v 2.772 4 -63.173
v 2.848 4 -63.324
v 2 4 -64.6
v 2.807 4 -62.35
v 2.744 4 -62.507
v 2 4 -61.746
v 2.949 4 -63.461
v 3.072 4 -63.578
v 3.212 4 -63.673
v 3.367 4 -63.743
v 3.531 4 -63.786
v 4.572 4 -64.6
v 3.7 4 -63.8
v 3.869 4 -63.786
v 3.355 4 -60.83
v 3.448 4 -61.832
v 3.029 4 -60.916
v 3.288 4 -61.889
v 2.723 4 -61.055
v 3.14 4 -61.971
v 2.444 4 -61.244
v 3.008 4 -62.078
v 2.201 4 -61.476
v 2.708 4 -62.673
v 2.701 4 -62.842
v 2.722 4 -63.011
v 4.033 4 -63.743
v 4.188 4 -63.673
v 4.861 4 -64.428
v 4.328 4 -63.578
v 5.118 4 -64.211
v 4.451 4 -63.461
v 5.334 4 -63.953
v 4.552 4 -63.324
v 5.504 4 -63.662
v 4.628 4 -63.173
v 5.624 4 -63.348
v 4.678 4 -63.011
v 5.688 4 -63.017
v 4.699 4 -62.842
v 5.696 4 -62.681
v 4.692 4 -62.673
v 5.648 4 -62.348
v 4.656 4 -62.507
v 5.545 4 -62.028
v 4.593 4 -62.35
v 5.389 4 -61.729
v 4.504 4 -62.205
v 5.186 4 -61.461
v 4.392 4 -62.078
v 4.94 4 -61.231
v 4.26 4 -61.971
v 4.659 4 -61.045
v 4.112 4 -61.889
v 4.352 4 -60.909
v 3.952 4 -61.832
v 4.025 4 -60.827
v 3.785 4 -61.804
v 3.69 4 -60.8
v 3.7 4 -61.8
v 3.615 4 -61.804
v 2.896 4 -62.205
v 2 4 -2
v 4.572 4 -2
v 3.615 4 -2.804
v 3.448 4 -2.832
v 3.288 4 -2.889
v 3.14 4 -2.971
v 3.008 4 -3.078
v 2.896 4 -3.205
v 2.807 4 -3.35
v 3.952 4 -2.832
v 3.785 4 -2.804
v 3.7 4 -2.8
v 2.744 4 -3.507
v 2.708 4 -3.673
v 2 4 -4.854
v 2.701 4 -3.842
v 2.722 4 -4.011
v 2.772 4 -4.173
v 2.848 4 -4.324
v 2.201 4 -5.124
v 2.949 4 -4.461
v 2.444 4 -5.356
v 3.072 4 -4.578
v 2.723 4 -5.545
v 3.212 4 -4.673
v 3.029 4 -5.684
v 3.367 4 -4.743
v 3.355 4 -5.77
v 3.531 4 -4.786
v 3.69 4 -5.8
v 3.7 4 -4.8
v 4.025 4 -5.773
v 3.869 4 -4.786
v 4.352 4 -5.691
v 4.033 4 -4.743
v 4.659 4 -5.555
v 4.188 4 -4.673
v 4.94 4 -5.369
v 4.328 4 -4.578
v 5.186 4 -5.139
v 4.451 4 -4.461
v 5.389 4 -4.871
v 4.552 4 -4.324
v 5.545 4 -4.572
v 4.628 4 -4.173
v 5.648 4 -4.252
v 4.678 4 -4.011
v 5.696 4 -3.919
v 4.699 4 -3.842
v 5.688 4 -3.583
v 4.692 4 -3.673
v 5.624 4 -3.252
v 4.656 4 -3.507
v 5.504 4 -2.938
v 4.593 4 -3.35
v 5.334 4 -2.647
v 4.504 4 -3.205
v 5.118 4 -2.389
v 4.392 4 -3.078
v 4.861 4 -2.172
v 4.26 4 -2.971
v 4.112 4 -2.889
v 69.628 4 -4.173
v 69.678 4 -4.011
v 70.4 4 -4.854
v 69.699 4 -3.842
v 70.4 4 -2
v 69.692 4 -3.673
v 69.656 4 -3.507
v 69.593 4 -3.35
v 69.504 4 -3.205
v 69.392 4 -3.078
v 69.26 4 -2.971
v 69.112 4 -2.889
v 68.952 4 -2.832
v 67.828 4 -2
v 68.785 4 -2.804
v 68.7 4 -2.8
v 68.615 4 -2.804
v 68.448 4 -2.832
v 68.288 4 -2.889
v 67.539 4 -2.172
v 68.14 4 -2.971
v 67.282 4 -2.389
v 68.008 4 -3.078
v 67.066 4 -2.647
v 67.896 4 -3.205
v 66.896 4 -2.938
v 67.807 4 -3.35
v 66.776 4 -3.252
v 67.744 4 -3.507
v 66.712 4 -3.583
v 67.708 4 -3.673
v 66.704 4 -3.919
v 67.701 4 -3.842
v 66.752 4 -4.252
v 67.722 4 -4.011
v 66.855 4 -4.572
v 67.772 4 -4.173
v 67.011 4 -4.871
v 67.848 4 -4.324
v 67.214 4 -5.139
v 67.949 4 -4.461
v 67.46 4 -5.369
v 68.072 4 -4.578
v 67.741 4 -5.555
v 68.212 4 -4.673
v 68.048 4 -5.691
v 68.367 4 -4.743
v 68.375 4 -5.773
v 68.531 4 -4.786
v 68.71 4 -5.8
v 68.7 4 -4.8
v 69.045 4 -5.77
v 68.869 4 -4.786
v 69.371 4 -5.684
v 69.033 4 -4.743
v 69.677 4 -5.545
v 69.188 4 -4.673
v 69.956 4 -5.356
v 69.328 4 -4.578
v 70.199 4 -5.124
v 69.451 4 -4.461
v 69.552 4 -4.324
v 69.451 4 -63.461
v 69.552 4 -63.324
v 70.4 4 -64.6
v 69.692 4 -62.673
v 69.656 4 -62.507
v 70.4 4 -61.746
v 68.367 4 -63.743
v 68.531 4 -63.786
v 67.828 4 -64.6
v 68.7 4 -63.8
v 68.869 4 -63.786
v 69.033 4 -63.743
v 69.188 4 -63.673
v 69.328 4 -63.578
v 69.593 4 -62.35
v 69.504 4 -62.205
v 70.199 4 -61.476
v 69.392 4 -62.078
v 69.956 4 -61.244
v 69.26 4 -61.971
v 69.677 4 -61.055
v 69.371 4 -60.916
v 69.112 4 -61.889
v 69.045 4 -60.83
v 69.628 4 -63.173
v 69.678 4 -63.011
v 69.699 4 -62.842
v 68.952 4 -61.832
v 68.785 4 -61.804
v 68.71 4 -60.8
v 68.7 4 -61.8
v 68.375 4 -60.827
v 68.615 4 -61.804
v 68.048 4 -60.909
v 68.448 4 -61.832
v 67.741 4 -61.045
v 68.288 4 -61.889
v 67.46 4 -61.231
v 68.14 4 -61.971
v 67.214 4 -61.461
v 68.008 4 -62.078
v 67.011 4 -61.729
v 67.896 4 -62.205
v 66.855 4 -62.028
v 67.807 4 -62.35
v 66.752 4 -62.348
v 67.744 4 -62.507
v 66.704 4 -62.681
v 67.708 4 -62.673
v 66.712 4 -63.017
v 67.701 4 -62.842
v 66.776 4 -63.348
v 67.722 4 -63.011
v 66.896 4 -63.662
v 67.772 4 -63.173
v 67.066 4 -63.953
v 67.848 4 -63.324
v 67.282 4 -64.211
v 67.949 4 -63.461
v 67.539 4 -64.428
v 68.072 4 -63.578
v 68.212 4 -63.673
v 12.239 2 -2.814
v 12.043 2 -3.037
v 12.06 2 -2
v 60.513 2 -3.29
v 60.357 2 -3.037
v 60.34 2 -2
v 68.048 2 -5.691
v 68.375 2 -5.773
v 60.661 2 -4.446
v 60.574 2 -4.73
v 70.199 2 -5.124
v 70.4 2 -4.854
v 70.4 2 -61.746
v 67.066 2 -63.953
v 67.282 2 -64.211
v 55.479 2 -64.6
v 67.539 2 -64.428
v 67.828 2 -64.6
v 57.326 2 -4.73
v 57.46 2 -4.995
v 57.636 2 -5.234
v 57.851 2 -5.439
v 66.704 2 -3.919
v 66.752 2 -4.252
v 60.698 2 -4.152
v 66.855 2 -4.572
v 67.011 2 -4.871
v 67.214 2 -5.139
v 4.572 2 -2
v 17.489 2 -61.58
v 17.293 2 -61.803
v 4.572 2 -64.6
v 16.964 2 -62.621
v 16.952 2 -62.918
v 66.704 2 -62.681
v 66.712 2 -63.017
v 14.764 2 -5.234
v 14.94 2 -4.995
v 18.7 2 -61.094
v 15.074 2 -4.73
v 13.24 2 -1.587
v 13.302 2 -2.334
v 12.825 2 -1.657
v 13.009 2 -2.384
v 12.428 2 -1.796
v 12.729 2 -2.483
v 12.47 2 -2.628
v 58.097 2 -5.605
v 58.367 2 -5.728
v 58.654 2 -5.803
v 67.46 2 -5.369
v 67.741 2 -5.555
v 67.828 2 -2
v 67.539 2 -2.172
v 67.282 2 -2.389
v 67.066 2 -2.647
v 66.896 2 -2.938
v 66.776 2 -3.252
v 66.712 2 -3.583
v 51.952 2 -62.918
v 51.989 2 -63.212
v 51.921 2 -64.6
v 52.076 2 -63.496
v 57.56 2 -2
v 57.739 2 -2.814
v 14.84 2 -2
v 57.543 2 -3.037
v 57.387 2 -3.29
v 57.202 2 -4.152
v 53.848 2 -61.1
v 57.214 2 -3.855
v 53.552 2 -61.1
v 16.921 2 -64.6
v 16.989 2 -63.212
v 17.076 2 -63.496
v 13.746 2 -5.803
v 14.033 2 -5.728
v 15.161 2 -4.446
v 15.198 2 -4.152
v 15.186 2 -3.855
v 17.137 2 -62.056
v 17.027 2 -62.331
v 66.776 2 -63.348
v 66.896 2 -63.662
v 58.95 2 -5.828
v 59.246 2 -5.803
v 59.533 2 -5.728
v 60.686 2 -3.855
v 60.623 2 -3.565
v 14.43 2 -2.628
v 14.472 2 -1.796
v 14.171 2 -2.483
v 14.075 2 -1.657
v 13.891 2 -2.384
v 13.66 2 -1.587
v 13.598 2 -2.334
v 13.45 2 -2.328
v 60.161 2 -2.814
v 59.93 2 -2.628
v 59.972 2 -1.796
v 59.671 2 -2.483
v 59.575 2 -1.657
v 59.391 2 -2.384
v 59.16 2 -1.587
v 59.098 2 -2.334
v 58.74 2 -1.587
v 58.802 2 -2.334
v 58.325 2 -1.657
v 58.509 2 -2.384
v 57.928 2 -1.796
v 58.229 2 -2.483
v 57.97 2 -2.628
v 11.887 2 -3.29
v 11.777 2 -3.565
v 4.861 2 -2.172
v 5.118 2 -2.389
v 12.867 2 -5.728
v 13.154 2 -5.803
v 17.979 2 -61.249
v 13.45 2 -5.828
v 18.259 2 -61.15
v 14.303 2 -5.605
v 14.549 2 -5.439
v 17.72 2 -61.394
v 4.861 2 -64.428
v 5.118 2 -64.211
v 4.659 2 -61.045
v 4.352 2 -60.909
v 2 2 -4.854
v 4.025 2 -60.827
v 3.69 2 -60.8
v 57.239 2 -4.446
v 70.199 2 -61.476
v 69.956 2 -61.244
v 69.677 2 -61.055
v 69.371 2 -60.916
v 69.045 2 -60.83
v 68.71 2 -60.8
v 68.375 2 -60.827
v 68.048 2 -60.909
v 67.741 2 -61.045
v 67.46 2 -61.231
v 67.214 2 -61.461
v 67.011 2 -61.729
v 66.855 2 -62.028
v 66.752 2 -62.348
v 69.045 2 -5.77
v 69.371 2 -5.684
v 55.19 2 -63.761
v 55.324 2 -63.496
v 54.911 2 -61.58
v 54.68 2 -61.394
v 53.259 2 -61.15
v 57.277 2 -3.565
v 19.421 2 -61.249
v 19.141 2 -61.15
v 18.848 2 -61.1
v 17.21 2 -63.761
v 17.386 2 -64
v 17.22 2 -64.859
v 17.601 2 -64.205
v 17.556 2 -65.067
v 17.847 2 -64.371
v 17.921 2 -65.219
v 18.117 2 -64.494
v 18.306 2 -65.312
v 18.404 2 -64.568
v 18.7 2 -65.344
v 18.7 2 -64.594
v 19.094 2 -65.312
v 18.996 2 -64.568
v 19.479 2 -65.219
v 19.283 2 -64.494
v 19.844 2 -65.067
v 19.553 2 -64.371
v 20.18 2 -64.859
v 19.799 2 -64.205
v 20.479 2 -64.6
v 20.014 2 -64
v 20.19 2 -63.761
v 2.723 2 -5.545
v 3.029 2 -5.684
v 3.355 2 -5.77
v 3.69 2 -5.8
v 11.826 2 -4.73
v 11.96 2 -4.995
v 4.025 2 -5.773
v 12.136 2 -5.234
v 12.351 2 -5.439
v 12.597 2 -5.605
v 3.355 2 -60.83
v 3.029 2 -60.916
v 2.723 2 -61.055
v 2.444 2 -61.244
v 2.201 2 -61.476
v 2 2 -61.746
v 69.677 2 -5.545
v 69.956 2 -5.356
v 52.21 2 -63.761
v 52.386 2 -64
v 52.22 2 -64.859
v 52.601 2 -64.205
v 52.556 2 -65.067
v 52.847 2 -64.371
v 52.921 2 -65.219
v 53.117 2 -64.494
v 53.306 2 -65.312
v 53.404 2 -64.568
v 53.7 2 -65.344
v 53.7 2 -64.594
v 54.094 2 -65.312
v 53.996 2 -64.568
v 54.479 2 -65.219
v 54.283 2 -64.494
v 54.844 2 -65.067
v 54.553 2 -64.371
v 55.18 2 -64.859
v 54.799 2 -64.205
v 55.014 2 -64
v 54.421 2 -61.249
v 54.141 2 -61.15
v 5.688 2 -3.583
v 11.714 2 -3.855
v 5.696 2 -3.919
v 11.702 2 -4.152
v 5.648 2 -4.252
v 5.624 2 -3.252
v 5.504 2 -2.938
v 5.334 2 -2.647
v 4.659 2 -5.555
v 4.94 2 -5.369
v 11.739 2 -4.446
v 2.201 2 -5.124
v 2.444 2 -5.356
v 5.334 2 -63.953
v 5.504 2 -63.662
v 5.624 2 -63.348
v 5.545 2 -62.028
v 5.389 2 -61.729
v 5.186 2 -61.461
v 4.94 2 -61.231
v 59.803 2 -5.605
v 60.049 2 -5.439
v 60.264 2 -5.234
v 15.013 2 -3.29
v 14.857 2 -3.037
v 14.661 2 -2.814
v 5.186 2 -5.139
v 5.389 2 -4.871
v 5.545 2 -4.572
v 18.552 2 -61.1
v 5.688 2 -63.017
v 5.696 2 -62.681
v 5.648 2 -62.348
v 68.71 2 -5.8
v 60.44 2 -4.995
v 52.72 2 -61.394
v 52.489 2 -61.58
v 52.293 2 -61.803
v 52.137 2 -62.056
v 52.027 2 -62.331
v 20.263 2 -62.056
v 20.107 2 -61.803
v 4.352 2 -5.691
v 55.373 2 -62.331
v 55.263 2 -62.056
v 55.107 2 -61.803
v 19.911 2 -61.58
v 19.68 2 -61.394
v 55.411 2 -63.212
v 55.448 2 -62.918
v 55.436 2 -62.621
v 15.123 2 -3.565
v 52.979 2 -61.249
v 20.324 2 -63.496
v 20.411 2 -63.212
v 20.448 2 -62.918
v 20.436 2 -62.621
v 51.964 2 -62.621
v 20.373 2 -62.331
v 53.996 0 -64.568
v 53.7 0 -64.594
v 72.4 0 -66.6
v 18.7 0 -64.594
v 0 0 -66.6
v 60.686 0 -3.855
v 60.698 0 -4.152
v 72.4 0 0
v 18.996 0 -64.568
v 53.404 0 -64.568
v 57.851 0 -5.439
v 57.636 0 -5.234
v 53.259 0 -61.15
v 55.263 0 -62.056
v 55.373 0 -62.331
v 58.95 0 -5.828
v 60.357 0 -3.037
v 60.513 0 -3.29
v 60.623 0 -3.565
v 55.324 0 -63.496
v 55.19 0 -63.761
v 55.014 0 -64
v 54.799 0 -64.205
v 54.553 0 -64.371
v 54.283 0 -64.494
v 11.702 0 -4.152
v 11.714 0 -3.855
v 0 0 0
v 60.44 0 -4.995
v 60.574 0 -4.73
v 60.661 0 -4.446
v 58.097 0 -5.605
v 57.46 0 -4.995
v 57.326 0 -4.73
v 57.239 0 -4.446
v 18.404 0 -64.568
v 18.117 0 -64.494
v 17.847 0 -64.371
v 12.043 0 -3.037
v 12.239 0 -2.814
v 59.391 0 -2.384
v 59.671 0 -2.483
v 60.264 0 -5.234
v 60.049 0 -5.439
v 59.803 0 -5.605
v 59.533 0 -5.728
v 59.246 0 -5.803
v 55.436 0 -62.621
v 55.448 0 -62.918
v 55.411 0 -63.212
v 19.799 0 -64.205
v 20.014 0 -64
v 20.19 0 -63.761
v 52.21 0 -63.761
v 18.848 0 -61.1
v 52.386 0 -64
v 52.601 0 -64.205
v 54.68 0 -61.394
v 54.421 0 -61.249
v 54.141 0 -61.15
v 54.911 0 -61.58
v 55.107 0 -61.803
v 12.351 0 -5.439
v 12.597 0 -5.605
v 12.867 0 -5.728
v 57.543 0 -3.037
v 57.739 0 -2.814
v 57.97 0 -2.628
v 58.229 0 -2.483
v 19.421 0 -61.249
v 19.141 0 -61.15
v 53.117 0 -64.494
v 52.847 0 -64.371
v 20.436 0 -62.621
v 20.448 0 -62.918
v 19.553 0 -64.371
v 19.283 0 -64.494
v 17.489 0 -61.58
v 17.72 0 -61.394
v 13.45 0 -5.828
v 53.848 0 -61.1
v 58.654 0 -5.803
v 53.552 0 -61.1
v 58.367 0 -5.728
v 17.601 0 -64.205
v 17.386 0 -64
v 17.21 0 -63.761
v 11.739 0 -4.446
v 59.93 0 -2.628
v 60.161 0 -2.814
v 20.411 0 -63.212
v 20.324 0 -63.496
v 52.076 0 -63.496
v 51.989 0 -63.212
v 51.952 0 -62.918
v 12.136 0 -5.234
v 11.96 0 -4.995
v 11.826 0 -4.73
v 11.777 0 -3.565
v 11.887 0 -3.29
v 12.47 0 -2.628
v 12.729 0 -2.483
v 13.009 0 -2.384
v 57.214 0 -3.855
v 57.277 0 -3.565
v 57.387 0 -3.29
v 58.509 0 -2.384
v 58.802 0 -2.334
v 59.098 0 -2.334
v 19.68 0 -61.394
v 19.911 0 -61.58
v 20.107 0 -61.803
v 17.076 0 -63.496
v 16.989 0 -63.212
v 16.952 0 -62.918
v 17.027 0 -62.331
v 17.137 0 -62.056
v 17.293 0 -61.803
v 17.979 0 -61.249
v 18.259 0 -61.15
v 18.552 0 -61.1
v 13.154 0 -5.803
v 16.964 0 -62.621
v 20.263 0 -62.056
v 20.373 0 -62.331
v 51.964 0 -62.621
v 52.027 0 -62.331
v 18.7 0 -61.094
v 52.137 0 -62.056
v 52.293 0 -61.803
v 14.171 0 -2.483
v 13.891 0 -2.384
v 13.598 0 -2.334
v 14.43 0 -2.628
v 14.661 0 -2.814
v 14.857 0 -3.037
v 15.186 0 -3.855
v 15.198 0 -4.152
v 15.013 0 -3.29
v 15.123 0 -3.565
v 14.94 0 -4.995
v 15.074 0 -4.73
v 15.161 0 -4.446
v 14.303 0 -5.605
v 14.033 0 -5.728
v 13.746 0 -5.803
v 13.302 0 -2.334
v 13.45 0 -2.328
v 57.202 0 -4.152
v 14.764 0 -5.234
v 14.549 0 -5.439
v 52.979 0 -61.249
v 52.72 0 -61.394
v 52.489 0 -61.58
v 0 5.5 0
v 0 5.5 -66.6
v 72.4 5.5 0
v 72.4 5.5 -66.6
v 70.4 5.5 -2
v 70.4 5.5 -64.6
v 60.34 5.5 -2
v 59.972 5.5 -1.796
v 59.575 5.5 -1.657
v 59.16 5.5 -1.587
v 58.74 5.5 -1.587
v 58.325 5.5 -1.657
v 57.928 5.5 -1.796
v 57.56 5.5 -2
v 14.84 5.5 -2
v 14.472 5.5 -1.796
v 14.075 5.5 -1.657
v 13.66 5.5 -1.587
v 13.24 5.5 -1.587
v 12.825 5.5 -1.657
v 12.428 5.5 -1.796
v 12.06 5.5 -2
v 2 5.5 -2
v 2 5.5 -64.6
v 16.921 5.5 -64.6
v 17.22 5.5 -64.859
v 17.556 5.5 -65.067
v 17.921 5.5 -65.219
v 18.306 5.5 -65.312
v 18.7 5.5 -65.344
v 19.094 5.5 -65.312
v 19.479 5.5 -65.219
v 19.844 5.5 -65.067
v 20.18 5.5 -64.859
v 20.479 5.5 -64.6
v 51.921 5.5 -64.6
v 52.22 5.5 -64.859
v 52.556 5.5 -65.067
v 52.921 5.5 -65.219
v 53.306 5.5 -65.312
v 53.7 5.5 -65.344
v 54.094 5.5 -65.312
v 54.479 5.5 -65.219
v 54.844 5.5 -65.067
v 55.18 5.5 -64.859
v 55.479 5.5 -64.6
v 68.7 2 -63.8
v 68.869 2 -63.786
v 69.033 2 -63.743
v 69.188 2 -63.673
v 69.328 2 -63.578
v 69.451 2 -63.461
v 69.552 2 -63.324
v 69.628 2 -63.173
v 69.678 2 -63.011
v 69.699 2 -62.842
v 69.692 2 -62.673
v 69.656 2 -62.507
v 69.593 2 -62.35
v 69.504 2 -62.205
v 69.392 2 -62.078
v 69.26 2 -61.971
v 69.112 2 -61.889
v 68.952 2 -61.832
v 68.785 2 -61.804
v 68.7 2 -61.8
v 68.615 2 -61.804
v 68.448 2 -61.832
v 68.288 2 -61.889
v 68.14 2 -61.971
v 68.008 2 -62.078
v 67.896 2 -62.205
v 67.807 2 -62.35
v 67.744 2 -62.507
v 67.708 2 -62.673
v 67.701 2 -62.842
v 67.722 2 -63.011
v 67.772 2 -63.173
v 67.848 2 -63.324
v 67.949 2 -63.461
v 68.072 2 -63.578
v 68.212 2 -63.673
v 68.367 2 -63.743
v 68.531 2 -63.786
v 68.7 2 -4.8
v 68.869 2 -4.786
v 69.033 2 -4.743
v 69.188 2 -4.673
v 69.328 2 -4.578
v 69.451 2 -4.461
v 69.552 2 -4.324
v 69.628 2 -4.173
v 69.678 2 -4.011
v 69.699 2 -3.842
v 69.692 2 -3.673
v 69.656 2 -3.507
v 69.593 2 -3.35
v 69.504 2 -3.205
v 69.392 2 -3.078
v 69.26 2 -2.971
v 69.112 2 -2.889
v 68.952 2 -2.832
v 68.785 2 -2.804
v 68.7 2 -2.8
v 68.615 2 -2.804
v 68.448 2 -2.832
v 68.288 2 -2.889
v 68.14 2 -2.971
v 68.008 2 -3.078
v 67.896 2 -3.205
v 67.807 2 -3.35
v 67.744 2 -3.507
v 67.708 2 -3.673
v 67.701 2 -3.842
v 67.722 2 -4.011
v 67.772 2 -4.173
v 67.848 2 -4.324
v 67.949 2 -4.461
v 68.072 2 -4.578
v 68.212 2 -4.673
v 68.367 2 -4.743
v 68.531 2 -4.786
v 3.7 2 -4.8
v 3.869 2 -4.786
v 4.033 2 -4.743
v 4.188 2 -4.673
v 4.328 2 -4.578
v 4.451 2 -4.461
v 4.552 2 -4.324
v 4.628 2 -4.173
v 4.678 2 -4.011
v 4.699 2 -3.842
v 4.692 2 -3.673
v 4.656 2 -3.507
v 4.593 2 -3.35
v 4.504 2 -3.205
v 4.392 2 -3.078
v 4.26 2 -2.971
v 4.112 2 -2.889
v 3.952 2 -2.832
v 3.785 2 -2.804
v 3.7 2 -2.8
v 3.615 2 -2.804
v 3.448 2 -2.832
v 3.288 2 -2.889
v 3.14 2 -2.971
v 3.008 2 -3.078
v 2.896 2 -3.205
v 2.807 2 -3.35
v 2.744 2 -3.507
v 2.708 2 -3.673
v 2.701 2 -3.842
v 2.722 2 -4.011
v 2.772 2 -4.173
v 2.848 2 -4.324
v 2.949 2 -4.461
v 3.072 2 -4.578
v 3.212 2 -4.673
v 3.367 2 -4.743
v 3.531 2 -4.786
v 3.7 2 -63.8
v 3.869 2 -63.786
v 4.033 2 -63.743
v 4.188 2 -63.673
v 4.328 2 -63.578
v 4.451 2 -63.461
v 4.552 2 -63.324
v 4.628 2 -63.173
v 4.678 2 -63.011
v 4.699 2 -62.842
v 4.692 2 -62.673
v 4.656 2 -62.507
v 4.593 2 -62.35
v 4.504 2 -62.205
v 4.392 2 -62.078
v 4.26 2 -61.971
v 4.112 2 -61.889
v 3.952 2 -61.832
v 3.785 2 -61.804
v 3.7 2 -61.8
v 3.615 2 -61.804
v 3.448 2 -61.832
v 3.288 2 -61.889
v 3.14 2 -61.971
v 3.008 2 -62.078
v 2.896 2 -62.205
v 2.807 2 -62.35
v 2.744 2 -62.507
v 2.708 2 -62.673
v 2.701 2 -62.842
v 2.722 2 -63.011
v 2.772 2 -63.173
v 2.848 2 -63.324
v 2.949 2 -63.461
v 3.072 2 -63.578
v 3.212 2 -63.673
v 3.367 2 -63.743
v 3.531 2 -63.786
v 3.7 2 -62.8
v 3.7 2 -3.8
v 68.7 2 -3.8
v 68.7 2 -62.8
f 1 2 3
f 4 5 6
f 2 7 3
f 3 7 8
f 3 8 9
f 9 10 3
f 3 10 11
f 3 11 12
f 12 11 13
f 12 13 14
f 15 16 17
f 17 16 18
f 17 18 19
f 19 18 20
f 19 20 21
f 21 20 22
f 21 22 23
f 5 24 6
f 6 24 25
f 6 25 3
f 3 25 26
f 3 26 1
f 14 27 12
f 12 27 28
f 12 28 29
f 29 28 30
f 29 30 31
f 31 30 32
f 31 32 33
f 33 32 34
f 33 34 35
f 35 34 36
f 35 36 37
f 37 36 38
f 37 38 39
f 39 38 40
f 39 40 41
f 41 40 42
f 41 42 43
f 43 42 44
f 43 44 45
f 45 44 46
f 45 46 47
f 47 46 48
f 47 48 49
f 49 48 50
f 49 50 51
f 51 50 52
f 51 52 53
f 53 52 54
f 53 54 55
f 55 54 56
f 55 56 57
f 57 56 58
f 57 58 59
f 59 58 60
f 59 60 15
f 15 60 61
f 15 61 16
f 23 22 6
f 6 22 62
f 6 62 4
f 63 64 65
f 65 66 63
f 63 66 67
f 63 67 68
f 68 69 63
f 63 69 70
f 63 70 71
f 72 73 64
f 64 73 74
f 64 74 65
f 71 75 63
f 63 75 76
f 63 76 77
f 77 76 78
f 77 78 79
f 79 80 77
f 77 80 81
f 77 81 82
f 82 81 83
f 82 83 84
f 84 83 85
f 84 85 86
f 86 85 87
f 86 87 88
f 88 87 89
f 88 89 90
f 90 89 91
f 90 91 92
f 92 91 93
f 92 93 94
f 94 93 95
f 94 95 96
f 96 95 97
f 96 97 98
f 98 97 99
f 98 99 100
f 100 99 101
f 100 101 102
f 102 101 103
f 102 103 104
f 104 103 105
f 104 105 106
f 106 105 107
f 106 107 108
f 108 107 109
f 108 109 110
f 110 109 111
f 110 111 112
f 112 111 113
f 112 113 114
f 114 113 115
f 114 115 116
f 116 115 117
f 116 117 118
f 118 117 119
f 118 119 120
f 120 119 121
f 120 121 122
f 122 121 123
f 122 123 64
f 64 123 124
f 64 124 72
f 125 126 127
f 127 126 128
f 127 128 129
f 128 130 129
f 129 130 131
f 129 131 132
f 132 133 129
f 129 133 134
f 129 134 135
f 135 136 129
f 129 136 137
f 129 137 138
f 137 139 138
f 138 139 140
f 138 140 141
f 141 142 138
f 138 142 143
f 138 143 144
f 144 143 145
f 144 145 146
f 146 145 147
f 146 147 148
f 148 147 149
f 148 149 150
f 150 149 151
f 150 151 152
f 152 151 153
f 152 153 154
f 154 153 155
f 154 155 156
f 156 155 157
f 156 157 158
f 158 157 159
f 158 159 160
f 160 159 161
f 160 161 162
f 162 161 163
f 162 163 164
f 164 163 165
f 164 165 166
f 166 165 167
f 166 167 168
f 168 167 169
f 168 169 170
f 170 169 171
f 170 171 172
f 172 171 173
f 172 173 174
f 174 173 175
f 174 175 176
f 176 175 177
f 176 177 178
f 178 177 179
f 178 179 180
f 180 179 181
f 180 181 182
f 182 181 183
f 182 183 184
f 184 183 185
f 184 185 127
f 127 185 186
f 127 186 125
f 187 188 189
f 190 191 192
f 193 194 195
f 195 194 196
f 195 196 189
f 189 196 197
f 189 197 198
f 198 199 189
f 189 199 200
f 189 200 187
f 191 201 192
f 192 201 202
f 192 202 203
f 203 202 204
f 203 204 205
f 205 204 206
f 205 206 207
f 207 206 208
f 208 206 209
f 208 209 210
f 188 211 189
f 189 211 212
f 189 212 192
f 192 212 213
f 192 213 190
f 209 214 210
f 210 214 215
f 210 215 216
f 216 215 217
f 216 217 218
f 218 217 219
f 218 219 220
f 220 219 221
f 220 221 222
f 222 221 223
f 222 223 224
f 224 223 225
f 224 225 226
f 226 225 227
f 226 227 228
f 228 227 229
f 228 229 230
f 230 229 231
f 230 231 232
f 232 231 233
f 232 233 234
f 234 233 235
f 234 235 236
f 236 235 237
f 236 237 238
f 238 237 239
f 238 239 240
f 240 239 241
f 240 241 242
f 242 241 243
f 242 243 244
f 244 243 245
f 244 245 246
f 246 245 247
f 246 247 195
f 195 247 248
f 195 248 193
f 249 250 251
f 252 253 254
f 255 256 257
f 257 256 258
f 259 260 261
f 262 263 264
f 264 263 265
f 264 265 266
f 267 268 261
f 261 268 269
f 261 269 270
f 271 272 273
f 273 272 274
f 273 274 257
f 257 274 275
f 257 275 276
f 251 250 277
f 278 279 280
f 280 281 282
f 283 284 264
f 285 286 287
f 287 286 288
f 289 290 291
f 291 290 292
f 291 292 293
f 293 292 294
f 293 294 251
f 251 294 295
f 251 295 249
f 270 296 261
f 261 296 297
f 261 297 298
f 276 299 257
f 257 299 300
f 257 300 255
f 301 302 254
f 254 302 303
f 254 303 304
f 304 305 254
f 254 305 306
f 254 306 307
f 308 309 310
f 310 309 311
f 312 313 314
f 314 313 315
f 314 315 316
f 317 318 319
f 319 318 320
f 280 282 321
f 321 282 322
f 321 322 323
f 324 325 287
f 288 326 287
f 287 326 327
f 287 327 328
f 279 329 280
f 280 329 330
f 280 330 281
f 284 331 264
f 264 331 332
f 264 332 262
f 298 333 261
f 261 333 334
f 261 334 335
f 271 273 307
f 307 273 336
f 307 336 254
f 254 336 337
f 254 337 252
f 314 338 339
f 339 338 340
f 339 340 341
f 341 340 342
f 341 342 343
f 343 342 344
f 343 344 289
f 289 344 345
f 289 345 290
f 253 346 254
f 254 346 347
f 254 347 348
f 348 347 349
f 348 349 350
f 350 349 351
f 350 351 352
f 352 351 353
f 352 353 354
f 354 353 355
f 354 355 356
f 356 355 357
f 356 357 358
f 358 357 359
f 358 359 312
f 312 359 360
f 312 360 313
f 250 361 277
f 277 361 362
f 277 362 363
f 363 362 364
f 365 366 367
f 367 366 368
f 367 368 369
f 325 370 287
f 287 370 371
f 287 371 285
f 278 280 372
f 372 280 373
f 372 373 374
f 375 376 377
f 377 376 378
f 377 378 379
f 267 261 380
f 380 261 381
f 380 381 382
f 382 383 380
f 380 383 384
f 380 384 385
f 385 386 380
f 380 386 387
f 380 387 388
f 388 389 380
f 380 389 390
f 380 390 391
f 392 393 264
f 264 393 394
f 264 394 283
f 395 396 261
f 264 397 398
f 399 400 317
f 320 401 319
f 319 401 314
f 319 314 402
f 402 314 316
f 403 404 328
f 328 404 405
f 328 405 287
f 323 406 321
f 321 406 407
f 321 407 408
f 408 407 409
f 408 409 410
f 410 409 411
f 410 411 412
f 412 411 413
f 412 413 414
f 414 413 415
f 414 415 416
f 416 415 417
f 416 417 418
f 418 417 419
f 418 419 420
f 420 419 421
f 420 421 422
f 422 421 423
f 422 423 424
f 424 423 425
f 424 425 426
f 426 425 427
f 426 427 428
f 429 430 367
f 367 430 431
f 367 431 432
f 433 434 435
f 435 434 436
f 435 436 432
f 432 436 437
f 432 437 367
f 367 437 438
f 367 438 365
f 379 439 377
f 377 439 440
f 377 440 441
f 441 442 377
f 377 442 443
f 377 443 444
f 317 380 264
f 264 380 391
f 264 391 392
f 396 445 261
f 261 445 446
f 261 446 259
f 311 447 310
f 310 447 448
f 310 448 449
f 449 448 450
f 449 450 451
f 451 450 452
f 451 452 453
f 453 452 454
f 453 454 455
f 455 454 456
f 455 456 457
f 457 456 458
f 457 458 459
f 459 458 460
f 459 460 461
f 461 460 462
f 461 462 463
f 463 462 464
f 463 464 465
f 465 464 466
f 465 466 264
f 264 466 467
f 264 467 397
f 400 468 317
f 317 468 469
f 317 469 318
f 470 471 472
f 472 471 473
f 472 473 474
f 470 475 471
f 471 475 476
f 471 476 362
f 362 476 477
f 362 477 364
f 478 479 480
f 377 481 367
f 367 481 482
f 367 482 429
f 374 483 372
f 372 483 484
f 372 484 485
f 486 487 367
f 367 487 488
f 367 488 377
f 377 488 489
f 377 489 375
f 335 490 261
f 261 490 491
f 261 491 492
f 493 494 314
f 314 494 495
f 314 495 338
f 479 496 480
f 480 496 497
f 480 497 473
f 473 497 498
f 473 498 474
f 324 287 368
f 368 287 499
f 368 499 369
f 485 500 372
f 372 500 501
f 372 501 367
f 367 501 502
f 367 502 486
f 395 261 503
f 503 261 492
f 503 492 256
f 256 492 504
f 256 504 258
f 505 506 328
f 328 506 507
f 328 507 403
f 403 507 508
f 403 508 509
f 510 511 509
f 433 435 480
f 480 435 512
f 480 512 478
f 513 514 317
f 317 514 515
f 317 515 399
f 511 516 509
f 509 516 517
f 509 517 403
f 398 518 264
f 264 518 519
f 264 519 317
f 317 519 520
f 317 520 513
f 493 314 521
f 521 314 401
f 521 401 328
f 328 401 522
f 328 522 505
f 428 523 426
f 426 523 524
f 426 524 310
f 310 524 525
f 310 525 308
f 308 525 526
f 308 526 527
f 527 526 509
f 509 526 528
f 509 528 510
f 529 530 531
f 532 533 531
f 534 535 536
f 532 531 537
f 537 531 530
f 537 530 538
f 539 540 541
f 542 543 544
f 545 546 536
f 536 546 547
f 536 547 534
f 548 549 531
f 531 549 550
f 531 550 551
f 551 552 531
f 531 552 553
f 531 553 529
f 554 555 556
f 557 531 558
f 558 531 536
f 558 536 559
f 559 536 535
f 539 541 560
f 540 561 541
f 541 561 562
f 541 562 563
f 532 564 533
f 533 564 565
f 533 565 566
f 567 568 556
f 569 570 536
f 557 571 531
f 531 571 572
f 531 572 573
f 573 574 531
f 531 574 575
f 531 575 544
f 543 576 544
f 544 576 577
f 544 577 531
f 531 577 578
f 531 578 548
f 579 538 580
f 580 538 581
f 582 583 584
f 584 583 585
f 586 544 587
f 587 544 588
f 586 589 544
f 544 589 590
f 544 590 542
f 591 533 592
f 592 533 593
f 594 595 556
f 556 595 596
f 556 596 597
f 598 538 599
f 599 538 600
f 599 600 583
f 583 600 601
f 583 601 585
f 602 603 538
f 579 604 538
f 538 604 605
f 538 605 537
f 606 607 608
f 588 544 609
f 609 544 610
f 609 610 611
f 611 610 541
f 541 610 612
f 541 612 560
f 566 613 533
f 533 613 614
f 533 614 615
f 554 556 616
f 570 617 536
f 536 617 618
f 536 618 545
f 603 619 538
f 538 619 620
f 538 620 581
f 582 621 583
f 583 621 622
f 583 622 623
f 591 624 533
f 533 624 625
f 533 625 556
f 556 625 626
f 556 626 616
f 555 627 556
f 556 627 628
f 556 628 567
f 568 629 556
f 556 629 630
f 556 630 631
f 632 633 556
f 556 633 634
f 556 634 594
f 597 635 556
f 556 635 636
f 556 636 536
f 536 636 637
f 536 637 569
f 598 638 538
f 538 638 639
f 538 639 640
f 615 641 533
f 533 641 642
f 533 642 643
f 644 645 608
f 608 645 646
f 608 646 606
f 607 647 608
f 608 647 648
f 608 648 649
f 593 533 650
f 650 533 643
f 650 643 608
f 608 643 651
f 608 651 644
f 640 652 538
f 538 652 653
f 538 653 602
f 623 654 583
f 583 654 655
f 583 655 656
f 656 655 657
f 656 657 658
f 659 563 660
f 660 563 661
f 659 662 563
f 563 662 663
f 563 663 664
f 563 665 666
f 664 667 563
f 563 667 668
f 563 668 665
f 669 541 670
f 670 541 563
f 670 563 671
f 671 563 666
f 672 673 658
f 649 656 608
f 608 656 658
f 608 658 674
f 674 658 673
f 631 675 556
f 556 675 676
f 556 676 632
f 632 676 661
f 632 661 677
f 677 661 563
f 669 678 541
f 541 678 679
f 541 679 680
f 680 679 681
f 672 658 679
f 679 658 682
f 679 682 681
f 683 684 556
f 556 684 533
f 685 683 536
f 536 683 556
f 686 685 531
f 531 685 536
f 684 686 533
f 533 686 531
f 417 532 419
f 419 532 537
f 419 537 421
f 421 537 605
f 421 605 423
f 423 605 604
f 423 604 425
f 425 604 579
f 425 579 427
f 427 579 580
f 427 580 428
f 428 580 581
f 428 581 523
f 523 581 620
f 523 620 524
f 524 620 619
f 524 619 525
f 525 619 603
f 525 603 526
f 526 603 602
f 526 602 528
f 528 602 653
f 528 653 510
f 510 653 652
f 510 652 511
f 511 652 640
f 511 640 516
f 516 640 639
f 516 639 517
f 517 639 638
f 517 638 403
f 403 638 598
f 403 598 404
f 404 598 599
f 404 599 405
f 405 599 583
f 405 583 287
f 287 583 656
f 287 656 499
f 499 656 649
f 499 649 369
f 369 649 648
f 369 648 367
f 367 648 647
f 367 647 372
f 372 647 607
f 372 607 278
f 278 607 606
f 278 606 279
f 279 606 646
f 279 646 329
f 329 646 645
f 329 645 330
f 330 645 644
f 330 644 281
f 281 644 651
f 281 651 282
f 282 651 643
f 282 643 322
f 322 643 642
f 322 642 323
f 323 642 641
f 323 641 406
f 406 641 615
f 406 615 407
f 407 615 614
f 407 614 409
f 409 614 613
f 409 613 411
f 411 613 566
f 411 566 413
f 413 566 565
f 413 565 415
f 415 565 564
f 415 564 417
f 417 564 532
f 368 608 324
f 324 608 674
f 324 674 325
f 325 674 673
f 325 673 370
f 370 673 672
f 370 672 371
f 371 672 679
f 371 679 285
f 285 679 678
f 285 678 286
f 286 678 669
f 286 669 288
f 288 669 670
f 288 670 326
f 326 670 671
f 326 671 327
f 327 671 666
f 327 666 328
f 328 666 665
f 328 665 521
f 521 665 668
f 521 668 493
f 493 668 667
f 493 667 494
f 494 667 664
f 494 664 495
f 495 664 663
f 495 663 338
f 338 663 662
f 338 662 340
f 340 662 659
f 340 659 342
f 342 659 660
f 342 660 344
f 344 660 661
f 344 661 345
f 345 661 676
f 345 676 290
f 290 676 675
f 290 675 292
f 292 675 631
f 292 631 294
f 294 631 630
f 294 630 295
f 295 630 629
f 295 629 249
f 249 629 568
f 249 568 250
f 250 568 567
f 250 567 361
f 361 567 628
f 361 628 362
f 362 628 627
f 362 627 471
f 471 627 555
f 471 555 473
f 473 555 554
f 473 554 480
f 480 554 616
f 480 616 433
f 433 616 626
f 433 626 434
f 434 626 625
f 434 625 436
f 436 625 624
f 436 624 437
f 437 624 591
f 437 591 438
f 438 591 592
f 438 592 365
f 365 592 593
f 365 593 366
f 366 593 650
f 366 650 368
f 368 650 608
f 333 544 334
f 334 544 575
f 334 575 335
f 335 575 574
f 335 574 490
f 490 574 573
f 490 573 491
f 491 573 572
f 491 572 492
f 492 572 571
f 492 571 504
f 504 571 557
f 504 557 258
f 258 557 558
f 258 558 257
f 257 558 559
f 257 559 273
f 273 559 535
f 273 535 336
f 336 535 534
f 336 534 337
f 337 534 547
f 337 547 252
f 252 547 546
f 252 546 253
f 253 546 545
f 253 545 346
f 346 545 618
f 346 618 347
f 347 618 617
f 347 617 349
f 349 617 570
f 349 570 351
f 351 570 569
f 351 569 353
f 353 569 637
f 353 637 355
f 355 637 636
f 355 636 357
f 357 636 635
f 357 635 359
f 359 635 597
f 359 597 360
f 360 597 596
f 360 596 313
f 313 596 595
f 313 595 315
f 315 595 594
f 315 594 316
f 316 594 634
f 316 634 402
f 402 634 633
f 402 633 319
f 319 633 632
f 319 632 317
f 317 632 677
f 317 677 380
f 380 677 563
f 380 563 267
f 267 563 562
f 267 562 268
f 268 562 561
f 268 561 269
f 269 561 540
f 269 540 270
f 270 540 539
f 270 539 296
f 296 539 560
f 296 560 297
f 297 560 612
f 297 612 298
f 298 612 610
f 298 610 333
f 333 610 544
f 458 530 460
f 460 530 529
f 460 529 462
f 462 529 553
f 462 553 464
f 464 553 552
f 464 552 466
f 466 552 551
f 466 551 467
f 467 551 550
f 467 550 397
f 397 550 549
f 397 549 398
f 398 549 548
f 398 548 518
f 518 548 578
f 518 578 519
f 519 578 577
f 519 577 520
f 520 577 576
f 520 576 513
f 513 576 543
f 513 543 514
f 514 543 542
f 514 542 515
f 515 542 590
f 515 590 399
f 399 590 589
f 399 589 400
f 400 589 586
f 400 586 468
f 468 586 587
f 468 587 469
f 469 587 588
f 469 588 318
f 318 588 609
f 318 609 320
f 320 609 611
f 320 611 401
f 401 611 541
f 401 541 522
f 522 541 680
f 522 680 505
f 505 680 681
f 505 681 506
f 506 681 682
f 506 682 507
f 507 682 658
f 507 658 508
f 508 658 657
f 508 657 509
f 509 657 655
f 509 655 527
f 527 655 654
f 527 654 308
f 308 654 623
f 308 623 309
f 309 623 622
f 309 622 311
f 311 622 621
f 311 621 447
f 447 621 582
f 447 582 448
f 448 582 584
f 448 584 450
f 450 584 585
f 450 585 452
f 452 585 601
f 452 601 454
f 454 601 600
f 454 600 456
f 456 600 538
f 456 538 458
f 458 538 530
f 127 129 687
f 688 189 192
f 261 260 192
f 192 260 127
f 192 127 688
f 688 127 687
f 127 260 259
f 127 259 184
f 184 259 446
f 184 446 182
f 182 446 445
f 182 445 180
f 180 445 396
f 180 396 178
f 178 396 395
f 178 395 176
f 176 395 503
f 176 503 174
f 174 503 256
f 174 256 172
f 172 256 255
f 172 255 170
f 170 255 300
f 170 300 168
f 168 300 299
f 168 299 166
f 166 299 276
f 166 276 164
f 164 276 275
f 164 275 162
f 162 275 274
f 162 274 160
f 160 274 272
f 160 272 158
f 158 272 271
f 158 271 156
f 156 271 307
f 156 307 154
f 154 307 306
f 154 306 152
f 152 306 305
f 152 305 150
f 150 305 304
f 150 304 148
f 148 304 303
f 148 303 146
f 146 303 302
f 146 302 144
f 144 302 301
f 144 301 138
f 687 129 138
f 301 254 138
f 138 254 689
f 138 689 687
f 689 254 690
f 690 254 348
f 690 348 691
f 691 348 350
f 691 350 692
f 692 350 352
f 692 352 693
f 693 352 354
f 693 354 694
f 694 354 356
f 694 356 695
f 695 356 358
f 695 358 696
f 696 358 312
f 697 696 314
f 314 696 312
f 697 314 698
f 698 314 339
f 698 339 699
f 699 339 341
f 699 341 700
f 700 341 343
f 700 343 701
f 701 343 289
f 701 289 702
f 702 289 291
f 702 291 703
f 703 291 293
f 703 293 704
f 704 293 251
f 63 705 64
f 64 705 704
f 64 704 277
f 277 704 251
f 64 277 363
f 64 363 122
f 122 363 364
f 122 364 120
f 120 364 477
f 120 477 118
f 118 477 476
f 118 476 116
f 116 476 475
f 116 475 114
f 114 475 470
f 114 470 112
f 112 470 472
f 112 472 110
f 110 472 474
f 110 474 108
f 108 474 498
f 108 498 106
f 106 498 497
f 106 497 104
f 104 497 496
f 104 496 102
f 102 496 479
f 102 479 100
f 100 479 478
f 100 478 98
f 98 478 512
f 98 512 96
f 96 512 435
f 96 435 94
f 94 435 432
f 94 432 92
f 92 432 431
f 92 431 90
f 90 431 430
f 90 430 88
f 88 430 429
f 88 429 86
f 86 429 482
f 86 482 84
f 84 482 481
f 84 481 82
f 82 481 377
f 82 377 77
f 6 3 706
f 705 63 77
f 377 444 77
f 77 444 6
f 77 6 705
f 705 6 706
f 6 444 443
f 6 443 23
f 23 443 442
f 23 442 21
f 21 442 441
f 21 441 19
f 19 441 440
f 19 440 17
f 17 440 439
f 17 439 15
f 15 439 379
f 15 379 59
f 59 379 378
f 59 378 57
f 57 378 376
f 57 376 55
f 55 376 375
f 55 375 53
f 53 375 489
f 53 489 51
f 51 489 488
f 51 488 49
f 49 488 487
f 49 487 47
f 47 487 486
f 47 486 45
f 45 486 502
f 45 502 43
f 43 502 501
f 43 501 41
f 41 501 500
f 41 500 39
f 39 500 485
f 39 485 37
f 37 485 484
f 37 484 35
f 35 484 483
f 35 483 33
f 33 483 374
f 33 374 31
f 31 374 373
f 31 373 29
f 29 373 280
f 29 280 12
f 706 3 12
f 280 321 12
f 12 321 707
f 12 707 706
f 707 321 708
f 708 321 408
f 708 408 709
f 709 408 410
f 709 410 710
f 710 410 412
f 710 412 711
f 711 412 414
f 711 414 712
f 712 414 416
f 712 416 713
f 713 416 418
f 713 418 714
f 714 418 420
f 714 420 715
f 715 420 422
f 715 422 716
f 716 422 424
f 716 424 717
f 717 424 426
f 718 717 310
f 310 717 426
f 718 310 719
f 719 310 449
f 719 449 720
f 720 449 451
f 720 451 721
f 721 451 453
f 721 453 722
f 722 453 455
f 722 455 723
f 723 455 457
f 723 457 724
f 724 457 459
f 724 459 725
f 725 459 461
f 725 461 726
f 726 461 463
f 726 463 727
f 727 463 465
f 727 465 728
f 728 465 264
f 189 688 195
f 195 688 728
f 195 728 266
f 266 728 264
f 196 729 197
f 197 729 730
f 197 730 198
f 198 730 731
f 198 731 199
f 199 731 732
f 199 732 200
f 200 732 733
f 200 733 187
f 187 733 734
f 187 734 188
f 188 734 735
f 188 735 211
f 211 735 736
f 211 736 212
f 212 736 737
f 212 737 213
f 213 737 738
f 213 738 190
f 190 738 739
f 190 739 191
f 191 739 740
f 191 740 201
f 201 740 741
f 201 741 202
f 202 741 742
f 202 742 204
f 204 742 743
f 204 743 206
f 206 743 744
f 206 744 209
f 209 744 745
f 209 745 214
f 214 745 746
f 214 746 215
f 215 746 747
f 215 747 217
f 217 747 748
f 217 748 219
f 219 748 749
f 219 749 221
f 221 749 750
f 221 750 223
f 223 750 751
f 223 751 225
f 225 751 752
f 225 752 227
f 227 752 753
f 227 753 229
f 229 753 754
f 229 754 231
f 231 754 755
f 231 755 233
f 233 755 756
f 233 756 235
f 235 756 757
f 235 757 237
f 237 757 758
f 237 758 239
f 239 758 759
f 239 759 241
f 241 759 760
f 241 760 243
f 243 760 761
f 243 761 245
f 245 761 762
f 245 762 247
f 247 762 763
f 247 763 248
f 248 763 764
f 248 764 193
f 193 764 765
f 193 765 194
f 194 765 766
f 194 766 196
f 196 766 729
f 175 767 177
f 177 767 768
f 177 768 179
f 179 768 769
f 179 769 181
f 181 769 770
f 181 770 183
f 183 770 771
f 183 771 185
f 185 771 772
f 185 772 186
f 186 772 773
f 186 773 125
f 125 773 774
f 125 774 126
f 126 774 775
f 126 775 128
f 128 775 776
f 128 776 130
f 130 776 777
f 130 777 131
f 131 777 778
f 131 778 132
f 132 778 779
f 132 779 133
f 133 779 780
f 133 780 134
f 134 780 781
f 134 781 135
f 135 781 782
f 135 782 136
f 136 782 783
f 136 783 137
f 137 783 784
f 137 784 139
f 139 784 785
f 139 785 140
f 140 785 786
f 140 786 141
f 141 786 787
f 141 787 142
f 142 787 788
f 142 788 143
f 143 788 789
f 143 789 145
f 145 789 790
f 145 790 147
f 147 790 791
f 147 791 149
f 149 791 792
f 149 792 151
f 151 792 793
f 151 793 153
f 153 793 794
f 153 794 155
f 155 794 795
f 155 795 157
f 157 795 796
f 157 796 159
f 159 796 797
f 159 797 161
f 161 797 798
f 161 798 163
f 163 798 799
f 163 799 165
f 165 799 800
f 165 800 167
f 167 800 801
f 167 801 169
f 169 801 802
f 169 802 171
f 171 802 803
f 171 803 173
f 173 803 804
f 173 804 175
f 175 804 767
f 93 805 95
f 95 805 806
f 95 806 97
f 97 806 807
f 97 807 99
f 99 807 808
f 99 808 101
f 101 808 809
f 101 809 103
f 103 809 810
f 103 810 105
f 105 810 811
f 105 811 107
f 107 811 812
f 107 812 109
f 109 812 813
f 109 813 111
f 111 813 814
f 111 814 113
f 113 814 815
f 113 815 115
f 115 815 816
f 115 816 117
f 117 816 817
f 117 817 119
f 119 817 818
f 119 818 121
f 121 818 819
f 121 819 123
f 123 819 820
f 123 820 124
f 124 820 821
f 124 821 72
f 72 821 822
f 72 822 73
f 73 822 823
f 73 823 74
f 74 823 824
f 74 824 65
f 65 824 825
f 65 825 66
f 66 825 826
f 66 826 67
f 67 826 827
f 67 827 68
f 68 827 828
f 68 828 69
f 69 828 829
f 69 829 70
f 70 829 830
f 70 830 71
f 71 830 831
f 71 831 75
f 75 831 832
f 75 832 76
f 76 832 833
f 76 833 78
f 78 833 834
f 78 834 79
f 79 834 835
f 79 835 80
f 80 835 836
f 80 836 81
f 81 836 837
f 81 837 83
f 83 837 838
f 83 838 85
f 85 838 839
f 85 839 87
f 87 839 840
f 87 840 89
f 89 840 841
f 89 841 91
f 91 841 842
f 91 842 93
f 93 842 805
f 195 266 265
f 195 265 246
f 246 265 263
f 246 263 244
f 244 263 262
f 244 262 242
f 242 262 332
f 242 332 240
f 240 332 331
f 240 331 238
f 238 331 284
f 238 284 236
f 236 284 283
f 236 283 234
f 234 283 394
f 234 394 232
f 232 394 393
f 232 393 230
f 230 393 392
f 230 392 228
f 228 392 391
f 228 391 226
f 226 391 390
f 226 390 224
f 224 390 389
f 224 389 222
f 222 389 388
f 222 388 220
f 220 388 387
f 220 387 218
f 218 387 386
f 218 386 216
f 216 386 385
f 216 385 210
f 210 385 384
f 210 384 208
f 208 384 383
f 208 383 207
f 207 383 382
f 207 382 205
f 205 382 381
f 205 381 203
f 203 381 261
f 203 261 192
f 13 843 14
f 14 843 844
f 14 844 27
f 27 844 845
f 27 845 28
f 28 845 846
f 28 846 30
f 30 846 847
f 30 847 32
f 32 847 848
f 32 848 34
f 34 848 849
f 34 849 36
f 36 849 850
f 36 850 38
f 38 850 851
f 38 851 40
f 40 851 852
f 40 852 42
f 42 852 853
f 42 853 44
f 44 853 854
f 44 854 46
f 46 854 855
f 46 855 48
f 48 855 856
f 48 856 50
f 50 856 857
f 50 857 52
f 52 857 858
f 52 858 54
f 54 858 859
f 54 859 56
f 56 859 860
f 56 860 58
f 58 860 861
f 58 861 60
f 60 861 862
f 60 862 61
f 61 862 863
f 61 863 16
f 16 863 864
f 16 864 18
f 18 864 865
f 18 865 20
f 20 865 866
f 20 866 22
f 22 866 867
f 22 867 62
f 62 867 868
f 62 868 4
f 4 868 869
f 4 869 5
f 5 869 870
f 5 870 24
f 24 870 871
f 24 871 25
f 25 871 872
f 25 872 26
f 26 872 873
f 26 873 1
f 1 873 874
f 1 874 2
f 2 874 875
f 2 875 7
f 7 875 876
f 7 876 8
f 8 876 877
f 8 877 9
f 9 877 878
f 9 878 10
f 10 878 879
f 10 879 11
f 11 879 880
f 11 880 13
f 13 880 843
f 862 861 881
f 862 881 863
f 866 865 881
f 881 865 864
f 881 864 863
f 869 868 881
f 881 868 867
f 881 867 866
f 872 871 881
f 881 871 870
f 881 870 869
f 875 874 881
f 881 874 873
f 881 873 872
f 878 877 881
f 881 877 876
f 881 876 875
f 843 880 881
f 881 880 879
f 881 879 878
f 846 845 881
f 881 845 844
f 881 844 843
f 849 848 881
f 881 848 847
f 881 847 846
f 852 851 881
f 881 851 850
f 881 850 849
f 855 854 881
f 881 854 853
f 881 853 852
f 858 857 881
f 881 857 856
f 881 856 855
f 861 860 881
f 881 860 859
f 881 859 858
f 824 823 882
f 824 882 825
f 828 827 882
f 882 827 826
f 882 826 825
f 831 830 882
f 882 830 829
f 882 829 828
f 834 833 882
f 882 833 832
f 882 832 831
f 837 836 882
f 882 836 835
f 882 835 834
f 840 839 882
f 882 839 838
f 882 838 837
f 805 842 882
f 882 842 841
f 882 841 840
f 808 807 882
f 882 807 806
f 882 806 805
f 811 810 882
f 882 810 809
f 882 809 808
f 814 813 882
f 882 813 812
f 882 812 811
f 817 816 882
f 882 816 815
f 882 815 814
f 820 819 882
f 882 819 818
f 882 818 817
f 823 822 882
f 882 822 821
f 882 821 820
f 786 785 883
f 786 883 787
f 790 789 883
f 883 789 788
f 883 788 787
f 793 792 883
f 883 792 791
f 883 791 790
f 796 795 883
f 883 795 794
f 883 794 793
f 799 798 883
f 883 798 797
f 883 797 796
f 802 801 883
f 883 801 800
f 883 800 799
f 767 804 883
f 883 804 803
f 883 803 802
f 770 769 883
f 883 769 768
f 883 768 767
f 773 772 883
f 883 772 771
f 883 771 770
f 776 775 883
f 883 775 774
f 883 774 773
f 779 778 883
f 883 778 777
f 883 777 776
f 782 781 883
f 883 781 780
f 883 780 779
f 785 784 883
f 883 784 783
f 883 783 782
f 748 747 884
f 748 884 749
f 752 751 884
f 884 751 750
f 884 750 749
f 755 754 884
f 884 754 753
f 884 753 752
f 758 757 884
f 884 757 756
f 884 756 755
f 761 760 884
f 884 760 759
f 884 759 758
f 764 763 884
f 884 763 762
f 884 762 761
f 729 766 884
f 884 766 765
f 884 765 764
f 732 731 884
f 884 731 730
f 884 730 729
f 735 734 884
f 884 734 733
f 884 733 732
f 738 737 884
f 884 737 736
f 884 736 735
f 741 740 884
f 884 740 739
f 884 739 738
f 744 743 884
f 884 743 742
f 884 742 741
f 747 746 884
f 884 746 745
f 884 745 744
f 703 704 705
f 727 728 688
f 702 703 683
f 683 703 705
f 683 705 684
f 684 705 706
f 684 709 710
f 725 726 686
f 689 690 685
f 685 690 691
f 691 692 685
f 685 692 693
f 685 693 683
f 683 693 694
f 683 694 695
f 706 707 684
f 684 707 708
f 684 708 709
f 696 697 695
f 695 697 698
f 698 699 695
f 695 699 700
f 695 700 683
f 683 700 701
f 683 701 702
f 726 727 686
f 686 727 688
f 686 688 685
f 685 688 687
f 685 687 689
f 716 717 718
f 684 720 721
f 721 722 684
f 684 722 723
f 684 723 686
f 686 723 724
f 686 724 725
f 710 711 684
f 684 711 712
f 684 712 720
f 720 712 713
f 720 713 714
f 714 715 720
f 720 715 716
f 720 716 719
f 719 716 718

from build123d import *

# Parameters (mm, degrees)
SKETCH1_W           = 72.4
SKETCH1_H           = 66.6
SKETCH1_R           = 1.75
BOSS_EXTRUDE1_DEPTH = 2
SKETCH2_W           = 72.4
SKETCH2_H           = 66.6
SKETCH2_R           = 1
BOSS_EXTRUDE2_DEPTH = 2
SKETCH3_W           = 72.4
SKETCH3_H           = 66.6
BOSS_EXTRUDE3_DEPTH = 1.5


with BuildPart() as part:
    # Sketch1 → Boss-Extrude1 (new body)
    with BuildSketch(Plane(origin=(0, 0, 0), x_dir=(1, 0, 0), z_dir=(0, 1, 0))):
        with Locations((36.2, 33.3)):
            Rectangle(SKETCH1_W, SKETCH1_H)
        with Locations((18.7, 62.843663413)):
            Circle(SKETCH1_R, mode=Mode.SUBTRACT)
        with Locations((13.45, 4.077708133)):
            Circle(SKETCH1_R, mode=Mode.SUBTRACT)
        with Locations((58.95, 4.077708133)):
            Circle(SKETCH1_R, mode=Mode.SUBTRACT)
        with Locations((53.7, 62.843663413)):
            Circle(SKETCH1_R, mode=Mode.SUBTRACT)
    extrude(amount=BOSS_EXTRUDE1_DEPTH)

    # Sketch2 → Boss-Extrude2 (add)
    with BuildSketch(Plane(origin=(0, 2, 0), x_dir=(1, 0, 0), z_dir=(0, 1, 0))):
        with Locations((36.2, 33.3)):
            Rectangle(SKETCH2_W, SKETCH2_H)
        with Locations((3.7, 3.8)):
            Circle(SKETCH2_R, mode=Mode.SUBTRACT)
        with Locations((68.7, 3.8)):
            Circle(SKETCH2_R, mode=Mode.SUBTRACT)
        with Locations((3.7, 62.8)):
            Circle(SKETCH2_R, mode=Mode.SUBTRACT)
        with BuildLine():
            Line((12.059629936, 2), (4.571779789, 2))
            ThreePointArc((4.571779789, 2), (5.185663494, 5.138956303), (2, 4.853565375))
            Line((2, 4.853565375), (2, 61.746434625))
            ThreePointArc((2, 61.746434625), (5.185663494, 61.461043697), (4.571779789, 64.6))
            Line((4.571779789, 64.6), (16.920876117, 64.6))
            ThreePointArc((16.920876117, 64.6), (18.7, 65.343663413), (20.479123883, 64.6))
            Line((20.479123883, 64.6), (51.920876117, 64.6))
            ThreePointArc((51.920876117, 64.6), (53.7, 65.343663413), (55.479123883, 64.6))
            Line((55.479123883, 64.6), (67.828220211, 64.6))
            ThreePointArc((67.828220211, 64.6), (67.214336506, 61.461043697), (70.4, 61.746434625))
            Line((70.4, 61.746434625), (70.4, 4.853565375))
            ThreePointArc((70.4, 4.853565375), (67.214336506, 5.138956303), (67.828220211, 2))
            Line((67.828220211, 2), (60.340370064, 2))
            ThreePointArc((60.340370064, 2), (58.95, 1.577708133), (57.559629936, 2))
            Line((57.559629936, 2), (14.840370064, 2))
            ThreePointArc((14.840370064, 2), (13.45, 1.577708133), (12.059629936, 2))
        make_face(mode=Mode.SUBTRACT)
        with Locations((68.7, 62.8)):
            Circle(SKETCH2_R, mode=Mode.SUBTRACT)
    extrude(amount=BOSS_EXTRUDE2_DEPTH)

    # Sketch3 → Boss-Extrude3 (add)
    with BuildSketch(Plane(origin=(0, 4, 0), x_dir=(1, 0, 0), z_dir=(0, 1, 0))):
        with Locations((36.2, 33.3)):
            Rectangle(SKETCH3_W, SKETCH3_H)
        with BuildLine():
            Line((12.059629936, 2), (2, 2))
            Line((2, 2), (2, 64.6))
            Line((2, 64.6), (16.920876117, 64.6))
            ThreePointArc((16.920876117, 64.6), (18.7, 65.343663413), (20.479123883, 64.6))
            Line((20.479123883, 64.6), (51.920876117, 64.6))
            ThreePointArc((51.920876117, 64.6), (53.7, 65.343663413), (55.479123883, 64.6))
            Line((55.479123883, 64.6), (70.4, 64.6))
            Line((70.4, 64.6), (70.4, 2))
            Line((70.4, 2), (60.340370064, 2))
            ThreePointArc((60.340370064, 2), (58.95, 1.577708133), (57.559629936, 2))
            Line((57.559629936, 2), (14.840370064, 2))
            ThreePointArc((14.840370064, 2), (13.45, 1.577708133), (12.059629936, 2))
        make_face(mode=Mode.SUBTRACT)
    extrude(amount=BOSS_EXTRUDE3_DEPTH)


solid = part.part
